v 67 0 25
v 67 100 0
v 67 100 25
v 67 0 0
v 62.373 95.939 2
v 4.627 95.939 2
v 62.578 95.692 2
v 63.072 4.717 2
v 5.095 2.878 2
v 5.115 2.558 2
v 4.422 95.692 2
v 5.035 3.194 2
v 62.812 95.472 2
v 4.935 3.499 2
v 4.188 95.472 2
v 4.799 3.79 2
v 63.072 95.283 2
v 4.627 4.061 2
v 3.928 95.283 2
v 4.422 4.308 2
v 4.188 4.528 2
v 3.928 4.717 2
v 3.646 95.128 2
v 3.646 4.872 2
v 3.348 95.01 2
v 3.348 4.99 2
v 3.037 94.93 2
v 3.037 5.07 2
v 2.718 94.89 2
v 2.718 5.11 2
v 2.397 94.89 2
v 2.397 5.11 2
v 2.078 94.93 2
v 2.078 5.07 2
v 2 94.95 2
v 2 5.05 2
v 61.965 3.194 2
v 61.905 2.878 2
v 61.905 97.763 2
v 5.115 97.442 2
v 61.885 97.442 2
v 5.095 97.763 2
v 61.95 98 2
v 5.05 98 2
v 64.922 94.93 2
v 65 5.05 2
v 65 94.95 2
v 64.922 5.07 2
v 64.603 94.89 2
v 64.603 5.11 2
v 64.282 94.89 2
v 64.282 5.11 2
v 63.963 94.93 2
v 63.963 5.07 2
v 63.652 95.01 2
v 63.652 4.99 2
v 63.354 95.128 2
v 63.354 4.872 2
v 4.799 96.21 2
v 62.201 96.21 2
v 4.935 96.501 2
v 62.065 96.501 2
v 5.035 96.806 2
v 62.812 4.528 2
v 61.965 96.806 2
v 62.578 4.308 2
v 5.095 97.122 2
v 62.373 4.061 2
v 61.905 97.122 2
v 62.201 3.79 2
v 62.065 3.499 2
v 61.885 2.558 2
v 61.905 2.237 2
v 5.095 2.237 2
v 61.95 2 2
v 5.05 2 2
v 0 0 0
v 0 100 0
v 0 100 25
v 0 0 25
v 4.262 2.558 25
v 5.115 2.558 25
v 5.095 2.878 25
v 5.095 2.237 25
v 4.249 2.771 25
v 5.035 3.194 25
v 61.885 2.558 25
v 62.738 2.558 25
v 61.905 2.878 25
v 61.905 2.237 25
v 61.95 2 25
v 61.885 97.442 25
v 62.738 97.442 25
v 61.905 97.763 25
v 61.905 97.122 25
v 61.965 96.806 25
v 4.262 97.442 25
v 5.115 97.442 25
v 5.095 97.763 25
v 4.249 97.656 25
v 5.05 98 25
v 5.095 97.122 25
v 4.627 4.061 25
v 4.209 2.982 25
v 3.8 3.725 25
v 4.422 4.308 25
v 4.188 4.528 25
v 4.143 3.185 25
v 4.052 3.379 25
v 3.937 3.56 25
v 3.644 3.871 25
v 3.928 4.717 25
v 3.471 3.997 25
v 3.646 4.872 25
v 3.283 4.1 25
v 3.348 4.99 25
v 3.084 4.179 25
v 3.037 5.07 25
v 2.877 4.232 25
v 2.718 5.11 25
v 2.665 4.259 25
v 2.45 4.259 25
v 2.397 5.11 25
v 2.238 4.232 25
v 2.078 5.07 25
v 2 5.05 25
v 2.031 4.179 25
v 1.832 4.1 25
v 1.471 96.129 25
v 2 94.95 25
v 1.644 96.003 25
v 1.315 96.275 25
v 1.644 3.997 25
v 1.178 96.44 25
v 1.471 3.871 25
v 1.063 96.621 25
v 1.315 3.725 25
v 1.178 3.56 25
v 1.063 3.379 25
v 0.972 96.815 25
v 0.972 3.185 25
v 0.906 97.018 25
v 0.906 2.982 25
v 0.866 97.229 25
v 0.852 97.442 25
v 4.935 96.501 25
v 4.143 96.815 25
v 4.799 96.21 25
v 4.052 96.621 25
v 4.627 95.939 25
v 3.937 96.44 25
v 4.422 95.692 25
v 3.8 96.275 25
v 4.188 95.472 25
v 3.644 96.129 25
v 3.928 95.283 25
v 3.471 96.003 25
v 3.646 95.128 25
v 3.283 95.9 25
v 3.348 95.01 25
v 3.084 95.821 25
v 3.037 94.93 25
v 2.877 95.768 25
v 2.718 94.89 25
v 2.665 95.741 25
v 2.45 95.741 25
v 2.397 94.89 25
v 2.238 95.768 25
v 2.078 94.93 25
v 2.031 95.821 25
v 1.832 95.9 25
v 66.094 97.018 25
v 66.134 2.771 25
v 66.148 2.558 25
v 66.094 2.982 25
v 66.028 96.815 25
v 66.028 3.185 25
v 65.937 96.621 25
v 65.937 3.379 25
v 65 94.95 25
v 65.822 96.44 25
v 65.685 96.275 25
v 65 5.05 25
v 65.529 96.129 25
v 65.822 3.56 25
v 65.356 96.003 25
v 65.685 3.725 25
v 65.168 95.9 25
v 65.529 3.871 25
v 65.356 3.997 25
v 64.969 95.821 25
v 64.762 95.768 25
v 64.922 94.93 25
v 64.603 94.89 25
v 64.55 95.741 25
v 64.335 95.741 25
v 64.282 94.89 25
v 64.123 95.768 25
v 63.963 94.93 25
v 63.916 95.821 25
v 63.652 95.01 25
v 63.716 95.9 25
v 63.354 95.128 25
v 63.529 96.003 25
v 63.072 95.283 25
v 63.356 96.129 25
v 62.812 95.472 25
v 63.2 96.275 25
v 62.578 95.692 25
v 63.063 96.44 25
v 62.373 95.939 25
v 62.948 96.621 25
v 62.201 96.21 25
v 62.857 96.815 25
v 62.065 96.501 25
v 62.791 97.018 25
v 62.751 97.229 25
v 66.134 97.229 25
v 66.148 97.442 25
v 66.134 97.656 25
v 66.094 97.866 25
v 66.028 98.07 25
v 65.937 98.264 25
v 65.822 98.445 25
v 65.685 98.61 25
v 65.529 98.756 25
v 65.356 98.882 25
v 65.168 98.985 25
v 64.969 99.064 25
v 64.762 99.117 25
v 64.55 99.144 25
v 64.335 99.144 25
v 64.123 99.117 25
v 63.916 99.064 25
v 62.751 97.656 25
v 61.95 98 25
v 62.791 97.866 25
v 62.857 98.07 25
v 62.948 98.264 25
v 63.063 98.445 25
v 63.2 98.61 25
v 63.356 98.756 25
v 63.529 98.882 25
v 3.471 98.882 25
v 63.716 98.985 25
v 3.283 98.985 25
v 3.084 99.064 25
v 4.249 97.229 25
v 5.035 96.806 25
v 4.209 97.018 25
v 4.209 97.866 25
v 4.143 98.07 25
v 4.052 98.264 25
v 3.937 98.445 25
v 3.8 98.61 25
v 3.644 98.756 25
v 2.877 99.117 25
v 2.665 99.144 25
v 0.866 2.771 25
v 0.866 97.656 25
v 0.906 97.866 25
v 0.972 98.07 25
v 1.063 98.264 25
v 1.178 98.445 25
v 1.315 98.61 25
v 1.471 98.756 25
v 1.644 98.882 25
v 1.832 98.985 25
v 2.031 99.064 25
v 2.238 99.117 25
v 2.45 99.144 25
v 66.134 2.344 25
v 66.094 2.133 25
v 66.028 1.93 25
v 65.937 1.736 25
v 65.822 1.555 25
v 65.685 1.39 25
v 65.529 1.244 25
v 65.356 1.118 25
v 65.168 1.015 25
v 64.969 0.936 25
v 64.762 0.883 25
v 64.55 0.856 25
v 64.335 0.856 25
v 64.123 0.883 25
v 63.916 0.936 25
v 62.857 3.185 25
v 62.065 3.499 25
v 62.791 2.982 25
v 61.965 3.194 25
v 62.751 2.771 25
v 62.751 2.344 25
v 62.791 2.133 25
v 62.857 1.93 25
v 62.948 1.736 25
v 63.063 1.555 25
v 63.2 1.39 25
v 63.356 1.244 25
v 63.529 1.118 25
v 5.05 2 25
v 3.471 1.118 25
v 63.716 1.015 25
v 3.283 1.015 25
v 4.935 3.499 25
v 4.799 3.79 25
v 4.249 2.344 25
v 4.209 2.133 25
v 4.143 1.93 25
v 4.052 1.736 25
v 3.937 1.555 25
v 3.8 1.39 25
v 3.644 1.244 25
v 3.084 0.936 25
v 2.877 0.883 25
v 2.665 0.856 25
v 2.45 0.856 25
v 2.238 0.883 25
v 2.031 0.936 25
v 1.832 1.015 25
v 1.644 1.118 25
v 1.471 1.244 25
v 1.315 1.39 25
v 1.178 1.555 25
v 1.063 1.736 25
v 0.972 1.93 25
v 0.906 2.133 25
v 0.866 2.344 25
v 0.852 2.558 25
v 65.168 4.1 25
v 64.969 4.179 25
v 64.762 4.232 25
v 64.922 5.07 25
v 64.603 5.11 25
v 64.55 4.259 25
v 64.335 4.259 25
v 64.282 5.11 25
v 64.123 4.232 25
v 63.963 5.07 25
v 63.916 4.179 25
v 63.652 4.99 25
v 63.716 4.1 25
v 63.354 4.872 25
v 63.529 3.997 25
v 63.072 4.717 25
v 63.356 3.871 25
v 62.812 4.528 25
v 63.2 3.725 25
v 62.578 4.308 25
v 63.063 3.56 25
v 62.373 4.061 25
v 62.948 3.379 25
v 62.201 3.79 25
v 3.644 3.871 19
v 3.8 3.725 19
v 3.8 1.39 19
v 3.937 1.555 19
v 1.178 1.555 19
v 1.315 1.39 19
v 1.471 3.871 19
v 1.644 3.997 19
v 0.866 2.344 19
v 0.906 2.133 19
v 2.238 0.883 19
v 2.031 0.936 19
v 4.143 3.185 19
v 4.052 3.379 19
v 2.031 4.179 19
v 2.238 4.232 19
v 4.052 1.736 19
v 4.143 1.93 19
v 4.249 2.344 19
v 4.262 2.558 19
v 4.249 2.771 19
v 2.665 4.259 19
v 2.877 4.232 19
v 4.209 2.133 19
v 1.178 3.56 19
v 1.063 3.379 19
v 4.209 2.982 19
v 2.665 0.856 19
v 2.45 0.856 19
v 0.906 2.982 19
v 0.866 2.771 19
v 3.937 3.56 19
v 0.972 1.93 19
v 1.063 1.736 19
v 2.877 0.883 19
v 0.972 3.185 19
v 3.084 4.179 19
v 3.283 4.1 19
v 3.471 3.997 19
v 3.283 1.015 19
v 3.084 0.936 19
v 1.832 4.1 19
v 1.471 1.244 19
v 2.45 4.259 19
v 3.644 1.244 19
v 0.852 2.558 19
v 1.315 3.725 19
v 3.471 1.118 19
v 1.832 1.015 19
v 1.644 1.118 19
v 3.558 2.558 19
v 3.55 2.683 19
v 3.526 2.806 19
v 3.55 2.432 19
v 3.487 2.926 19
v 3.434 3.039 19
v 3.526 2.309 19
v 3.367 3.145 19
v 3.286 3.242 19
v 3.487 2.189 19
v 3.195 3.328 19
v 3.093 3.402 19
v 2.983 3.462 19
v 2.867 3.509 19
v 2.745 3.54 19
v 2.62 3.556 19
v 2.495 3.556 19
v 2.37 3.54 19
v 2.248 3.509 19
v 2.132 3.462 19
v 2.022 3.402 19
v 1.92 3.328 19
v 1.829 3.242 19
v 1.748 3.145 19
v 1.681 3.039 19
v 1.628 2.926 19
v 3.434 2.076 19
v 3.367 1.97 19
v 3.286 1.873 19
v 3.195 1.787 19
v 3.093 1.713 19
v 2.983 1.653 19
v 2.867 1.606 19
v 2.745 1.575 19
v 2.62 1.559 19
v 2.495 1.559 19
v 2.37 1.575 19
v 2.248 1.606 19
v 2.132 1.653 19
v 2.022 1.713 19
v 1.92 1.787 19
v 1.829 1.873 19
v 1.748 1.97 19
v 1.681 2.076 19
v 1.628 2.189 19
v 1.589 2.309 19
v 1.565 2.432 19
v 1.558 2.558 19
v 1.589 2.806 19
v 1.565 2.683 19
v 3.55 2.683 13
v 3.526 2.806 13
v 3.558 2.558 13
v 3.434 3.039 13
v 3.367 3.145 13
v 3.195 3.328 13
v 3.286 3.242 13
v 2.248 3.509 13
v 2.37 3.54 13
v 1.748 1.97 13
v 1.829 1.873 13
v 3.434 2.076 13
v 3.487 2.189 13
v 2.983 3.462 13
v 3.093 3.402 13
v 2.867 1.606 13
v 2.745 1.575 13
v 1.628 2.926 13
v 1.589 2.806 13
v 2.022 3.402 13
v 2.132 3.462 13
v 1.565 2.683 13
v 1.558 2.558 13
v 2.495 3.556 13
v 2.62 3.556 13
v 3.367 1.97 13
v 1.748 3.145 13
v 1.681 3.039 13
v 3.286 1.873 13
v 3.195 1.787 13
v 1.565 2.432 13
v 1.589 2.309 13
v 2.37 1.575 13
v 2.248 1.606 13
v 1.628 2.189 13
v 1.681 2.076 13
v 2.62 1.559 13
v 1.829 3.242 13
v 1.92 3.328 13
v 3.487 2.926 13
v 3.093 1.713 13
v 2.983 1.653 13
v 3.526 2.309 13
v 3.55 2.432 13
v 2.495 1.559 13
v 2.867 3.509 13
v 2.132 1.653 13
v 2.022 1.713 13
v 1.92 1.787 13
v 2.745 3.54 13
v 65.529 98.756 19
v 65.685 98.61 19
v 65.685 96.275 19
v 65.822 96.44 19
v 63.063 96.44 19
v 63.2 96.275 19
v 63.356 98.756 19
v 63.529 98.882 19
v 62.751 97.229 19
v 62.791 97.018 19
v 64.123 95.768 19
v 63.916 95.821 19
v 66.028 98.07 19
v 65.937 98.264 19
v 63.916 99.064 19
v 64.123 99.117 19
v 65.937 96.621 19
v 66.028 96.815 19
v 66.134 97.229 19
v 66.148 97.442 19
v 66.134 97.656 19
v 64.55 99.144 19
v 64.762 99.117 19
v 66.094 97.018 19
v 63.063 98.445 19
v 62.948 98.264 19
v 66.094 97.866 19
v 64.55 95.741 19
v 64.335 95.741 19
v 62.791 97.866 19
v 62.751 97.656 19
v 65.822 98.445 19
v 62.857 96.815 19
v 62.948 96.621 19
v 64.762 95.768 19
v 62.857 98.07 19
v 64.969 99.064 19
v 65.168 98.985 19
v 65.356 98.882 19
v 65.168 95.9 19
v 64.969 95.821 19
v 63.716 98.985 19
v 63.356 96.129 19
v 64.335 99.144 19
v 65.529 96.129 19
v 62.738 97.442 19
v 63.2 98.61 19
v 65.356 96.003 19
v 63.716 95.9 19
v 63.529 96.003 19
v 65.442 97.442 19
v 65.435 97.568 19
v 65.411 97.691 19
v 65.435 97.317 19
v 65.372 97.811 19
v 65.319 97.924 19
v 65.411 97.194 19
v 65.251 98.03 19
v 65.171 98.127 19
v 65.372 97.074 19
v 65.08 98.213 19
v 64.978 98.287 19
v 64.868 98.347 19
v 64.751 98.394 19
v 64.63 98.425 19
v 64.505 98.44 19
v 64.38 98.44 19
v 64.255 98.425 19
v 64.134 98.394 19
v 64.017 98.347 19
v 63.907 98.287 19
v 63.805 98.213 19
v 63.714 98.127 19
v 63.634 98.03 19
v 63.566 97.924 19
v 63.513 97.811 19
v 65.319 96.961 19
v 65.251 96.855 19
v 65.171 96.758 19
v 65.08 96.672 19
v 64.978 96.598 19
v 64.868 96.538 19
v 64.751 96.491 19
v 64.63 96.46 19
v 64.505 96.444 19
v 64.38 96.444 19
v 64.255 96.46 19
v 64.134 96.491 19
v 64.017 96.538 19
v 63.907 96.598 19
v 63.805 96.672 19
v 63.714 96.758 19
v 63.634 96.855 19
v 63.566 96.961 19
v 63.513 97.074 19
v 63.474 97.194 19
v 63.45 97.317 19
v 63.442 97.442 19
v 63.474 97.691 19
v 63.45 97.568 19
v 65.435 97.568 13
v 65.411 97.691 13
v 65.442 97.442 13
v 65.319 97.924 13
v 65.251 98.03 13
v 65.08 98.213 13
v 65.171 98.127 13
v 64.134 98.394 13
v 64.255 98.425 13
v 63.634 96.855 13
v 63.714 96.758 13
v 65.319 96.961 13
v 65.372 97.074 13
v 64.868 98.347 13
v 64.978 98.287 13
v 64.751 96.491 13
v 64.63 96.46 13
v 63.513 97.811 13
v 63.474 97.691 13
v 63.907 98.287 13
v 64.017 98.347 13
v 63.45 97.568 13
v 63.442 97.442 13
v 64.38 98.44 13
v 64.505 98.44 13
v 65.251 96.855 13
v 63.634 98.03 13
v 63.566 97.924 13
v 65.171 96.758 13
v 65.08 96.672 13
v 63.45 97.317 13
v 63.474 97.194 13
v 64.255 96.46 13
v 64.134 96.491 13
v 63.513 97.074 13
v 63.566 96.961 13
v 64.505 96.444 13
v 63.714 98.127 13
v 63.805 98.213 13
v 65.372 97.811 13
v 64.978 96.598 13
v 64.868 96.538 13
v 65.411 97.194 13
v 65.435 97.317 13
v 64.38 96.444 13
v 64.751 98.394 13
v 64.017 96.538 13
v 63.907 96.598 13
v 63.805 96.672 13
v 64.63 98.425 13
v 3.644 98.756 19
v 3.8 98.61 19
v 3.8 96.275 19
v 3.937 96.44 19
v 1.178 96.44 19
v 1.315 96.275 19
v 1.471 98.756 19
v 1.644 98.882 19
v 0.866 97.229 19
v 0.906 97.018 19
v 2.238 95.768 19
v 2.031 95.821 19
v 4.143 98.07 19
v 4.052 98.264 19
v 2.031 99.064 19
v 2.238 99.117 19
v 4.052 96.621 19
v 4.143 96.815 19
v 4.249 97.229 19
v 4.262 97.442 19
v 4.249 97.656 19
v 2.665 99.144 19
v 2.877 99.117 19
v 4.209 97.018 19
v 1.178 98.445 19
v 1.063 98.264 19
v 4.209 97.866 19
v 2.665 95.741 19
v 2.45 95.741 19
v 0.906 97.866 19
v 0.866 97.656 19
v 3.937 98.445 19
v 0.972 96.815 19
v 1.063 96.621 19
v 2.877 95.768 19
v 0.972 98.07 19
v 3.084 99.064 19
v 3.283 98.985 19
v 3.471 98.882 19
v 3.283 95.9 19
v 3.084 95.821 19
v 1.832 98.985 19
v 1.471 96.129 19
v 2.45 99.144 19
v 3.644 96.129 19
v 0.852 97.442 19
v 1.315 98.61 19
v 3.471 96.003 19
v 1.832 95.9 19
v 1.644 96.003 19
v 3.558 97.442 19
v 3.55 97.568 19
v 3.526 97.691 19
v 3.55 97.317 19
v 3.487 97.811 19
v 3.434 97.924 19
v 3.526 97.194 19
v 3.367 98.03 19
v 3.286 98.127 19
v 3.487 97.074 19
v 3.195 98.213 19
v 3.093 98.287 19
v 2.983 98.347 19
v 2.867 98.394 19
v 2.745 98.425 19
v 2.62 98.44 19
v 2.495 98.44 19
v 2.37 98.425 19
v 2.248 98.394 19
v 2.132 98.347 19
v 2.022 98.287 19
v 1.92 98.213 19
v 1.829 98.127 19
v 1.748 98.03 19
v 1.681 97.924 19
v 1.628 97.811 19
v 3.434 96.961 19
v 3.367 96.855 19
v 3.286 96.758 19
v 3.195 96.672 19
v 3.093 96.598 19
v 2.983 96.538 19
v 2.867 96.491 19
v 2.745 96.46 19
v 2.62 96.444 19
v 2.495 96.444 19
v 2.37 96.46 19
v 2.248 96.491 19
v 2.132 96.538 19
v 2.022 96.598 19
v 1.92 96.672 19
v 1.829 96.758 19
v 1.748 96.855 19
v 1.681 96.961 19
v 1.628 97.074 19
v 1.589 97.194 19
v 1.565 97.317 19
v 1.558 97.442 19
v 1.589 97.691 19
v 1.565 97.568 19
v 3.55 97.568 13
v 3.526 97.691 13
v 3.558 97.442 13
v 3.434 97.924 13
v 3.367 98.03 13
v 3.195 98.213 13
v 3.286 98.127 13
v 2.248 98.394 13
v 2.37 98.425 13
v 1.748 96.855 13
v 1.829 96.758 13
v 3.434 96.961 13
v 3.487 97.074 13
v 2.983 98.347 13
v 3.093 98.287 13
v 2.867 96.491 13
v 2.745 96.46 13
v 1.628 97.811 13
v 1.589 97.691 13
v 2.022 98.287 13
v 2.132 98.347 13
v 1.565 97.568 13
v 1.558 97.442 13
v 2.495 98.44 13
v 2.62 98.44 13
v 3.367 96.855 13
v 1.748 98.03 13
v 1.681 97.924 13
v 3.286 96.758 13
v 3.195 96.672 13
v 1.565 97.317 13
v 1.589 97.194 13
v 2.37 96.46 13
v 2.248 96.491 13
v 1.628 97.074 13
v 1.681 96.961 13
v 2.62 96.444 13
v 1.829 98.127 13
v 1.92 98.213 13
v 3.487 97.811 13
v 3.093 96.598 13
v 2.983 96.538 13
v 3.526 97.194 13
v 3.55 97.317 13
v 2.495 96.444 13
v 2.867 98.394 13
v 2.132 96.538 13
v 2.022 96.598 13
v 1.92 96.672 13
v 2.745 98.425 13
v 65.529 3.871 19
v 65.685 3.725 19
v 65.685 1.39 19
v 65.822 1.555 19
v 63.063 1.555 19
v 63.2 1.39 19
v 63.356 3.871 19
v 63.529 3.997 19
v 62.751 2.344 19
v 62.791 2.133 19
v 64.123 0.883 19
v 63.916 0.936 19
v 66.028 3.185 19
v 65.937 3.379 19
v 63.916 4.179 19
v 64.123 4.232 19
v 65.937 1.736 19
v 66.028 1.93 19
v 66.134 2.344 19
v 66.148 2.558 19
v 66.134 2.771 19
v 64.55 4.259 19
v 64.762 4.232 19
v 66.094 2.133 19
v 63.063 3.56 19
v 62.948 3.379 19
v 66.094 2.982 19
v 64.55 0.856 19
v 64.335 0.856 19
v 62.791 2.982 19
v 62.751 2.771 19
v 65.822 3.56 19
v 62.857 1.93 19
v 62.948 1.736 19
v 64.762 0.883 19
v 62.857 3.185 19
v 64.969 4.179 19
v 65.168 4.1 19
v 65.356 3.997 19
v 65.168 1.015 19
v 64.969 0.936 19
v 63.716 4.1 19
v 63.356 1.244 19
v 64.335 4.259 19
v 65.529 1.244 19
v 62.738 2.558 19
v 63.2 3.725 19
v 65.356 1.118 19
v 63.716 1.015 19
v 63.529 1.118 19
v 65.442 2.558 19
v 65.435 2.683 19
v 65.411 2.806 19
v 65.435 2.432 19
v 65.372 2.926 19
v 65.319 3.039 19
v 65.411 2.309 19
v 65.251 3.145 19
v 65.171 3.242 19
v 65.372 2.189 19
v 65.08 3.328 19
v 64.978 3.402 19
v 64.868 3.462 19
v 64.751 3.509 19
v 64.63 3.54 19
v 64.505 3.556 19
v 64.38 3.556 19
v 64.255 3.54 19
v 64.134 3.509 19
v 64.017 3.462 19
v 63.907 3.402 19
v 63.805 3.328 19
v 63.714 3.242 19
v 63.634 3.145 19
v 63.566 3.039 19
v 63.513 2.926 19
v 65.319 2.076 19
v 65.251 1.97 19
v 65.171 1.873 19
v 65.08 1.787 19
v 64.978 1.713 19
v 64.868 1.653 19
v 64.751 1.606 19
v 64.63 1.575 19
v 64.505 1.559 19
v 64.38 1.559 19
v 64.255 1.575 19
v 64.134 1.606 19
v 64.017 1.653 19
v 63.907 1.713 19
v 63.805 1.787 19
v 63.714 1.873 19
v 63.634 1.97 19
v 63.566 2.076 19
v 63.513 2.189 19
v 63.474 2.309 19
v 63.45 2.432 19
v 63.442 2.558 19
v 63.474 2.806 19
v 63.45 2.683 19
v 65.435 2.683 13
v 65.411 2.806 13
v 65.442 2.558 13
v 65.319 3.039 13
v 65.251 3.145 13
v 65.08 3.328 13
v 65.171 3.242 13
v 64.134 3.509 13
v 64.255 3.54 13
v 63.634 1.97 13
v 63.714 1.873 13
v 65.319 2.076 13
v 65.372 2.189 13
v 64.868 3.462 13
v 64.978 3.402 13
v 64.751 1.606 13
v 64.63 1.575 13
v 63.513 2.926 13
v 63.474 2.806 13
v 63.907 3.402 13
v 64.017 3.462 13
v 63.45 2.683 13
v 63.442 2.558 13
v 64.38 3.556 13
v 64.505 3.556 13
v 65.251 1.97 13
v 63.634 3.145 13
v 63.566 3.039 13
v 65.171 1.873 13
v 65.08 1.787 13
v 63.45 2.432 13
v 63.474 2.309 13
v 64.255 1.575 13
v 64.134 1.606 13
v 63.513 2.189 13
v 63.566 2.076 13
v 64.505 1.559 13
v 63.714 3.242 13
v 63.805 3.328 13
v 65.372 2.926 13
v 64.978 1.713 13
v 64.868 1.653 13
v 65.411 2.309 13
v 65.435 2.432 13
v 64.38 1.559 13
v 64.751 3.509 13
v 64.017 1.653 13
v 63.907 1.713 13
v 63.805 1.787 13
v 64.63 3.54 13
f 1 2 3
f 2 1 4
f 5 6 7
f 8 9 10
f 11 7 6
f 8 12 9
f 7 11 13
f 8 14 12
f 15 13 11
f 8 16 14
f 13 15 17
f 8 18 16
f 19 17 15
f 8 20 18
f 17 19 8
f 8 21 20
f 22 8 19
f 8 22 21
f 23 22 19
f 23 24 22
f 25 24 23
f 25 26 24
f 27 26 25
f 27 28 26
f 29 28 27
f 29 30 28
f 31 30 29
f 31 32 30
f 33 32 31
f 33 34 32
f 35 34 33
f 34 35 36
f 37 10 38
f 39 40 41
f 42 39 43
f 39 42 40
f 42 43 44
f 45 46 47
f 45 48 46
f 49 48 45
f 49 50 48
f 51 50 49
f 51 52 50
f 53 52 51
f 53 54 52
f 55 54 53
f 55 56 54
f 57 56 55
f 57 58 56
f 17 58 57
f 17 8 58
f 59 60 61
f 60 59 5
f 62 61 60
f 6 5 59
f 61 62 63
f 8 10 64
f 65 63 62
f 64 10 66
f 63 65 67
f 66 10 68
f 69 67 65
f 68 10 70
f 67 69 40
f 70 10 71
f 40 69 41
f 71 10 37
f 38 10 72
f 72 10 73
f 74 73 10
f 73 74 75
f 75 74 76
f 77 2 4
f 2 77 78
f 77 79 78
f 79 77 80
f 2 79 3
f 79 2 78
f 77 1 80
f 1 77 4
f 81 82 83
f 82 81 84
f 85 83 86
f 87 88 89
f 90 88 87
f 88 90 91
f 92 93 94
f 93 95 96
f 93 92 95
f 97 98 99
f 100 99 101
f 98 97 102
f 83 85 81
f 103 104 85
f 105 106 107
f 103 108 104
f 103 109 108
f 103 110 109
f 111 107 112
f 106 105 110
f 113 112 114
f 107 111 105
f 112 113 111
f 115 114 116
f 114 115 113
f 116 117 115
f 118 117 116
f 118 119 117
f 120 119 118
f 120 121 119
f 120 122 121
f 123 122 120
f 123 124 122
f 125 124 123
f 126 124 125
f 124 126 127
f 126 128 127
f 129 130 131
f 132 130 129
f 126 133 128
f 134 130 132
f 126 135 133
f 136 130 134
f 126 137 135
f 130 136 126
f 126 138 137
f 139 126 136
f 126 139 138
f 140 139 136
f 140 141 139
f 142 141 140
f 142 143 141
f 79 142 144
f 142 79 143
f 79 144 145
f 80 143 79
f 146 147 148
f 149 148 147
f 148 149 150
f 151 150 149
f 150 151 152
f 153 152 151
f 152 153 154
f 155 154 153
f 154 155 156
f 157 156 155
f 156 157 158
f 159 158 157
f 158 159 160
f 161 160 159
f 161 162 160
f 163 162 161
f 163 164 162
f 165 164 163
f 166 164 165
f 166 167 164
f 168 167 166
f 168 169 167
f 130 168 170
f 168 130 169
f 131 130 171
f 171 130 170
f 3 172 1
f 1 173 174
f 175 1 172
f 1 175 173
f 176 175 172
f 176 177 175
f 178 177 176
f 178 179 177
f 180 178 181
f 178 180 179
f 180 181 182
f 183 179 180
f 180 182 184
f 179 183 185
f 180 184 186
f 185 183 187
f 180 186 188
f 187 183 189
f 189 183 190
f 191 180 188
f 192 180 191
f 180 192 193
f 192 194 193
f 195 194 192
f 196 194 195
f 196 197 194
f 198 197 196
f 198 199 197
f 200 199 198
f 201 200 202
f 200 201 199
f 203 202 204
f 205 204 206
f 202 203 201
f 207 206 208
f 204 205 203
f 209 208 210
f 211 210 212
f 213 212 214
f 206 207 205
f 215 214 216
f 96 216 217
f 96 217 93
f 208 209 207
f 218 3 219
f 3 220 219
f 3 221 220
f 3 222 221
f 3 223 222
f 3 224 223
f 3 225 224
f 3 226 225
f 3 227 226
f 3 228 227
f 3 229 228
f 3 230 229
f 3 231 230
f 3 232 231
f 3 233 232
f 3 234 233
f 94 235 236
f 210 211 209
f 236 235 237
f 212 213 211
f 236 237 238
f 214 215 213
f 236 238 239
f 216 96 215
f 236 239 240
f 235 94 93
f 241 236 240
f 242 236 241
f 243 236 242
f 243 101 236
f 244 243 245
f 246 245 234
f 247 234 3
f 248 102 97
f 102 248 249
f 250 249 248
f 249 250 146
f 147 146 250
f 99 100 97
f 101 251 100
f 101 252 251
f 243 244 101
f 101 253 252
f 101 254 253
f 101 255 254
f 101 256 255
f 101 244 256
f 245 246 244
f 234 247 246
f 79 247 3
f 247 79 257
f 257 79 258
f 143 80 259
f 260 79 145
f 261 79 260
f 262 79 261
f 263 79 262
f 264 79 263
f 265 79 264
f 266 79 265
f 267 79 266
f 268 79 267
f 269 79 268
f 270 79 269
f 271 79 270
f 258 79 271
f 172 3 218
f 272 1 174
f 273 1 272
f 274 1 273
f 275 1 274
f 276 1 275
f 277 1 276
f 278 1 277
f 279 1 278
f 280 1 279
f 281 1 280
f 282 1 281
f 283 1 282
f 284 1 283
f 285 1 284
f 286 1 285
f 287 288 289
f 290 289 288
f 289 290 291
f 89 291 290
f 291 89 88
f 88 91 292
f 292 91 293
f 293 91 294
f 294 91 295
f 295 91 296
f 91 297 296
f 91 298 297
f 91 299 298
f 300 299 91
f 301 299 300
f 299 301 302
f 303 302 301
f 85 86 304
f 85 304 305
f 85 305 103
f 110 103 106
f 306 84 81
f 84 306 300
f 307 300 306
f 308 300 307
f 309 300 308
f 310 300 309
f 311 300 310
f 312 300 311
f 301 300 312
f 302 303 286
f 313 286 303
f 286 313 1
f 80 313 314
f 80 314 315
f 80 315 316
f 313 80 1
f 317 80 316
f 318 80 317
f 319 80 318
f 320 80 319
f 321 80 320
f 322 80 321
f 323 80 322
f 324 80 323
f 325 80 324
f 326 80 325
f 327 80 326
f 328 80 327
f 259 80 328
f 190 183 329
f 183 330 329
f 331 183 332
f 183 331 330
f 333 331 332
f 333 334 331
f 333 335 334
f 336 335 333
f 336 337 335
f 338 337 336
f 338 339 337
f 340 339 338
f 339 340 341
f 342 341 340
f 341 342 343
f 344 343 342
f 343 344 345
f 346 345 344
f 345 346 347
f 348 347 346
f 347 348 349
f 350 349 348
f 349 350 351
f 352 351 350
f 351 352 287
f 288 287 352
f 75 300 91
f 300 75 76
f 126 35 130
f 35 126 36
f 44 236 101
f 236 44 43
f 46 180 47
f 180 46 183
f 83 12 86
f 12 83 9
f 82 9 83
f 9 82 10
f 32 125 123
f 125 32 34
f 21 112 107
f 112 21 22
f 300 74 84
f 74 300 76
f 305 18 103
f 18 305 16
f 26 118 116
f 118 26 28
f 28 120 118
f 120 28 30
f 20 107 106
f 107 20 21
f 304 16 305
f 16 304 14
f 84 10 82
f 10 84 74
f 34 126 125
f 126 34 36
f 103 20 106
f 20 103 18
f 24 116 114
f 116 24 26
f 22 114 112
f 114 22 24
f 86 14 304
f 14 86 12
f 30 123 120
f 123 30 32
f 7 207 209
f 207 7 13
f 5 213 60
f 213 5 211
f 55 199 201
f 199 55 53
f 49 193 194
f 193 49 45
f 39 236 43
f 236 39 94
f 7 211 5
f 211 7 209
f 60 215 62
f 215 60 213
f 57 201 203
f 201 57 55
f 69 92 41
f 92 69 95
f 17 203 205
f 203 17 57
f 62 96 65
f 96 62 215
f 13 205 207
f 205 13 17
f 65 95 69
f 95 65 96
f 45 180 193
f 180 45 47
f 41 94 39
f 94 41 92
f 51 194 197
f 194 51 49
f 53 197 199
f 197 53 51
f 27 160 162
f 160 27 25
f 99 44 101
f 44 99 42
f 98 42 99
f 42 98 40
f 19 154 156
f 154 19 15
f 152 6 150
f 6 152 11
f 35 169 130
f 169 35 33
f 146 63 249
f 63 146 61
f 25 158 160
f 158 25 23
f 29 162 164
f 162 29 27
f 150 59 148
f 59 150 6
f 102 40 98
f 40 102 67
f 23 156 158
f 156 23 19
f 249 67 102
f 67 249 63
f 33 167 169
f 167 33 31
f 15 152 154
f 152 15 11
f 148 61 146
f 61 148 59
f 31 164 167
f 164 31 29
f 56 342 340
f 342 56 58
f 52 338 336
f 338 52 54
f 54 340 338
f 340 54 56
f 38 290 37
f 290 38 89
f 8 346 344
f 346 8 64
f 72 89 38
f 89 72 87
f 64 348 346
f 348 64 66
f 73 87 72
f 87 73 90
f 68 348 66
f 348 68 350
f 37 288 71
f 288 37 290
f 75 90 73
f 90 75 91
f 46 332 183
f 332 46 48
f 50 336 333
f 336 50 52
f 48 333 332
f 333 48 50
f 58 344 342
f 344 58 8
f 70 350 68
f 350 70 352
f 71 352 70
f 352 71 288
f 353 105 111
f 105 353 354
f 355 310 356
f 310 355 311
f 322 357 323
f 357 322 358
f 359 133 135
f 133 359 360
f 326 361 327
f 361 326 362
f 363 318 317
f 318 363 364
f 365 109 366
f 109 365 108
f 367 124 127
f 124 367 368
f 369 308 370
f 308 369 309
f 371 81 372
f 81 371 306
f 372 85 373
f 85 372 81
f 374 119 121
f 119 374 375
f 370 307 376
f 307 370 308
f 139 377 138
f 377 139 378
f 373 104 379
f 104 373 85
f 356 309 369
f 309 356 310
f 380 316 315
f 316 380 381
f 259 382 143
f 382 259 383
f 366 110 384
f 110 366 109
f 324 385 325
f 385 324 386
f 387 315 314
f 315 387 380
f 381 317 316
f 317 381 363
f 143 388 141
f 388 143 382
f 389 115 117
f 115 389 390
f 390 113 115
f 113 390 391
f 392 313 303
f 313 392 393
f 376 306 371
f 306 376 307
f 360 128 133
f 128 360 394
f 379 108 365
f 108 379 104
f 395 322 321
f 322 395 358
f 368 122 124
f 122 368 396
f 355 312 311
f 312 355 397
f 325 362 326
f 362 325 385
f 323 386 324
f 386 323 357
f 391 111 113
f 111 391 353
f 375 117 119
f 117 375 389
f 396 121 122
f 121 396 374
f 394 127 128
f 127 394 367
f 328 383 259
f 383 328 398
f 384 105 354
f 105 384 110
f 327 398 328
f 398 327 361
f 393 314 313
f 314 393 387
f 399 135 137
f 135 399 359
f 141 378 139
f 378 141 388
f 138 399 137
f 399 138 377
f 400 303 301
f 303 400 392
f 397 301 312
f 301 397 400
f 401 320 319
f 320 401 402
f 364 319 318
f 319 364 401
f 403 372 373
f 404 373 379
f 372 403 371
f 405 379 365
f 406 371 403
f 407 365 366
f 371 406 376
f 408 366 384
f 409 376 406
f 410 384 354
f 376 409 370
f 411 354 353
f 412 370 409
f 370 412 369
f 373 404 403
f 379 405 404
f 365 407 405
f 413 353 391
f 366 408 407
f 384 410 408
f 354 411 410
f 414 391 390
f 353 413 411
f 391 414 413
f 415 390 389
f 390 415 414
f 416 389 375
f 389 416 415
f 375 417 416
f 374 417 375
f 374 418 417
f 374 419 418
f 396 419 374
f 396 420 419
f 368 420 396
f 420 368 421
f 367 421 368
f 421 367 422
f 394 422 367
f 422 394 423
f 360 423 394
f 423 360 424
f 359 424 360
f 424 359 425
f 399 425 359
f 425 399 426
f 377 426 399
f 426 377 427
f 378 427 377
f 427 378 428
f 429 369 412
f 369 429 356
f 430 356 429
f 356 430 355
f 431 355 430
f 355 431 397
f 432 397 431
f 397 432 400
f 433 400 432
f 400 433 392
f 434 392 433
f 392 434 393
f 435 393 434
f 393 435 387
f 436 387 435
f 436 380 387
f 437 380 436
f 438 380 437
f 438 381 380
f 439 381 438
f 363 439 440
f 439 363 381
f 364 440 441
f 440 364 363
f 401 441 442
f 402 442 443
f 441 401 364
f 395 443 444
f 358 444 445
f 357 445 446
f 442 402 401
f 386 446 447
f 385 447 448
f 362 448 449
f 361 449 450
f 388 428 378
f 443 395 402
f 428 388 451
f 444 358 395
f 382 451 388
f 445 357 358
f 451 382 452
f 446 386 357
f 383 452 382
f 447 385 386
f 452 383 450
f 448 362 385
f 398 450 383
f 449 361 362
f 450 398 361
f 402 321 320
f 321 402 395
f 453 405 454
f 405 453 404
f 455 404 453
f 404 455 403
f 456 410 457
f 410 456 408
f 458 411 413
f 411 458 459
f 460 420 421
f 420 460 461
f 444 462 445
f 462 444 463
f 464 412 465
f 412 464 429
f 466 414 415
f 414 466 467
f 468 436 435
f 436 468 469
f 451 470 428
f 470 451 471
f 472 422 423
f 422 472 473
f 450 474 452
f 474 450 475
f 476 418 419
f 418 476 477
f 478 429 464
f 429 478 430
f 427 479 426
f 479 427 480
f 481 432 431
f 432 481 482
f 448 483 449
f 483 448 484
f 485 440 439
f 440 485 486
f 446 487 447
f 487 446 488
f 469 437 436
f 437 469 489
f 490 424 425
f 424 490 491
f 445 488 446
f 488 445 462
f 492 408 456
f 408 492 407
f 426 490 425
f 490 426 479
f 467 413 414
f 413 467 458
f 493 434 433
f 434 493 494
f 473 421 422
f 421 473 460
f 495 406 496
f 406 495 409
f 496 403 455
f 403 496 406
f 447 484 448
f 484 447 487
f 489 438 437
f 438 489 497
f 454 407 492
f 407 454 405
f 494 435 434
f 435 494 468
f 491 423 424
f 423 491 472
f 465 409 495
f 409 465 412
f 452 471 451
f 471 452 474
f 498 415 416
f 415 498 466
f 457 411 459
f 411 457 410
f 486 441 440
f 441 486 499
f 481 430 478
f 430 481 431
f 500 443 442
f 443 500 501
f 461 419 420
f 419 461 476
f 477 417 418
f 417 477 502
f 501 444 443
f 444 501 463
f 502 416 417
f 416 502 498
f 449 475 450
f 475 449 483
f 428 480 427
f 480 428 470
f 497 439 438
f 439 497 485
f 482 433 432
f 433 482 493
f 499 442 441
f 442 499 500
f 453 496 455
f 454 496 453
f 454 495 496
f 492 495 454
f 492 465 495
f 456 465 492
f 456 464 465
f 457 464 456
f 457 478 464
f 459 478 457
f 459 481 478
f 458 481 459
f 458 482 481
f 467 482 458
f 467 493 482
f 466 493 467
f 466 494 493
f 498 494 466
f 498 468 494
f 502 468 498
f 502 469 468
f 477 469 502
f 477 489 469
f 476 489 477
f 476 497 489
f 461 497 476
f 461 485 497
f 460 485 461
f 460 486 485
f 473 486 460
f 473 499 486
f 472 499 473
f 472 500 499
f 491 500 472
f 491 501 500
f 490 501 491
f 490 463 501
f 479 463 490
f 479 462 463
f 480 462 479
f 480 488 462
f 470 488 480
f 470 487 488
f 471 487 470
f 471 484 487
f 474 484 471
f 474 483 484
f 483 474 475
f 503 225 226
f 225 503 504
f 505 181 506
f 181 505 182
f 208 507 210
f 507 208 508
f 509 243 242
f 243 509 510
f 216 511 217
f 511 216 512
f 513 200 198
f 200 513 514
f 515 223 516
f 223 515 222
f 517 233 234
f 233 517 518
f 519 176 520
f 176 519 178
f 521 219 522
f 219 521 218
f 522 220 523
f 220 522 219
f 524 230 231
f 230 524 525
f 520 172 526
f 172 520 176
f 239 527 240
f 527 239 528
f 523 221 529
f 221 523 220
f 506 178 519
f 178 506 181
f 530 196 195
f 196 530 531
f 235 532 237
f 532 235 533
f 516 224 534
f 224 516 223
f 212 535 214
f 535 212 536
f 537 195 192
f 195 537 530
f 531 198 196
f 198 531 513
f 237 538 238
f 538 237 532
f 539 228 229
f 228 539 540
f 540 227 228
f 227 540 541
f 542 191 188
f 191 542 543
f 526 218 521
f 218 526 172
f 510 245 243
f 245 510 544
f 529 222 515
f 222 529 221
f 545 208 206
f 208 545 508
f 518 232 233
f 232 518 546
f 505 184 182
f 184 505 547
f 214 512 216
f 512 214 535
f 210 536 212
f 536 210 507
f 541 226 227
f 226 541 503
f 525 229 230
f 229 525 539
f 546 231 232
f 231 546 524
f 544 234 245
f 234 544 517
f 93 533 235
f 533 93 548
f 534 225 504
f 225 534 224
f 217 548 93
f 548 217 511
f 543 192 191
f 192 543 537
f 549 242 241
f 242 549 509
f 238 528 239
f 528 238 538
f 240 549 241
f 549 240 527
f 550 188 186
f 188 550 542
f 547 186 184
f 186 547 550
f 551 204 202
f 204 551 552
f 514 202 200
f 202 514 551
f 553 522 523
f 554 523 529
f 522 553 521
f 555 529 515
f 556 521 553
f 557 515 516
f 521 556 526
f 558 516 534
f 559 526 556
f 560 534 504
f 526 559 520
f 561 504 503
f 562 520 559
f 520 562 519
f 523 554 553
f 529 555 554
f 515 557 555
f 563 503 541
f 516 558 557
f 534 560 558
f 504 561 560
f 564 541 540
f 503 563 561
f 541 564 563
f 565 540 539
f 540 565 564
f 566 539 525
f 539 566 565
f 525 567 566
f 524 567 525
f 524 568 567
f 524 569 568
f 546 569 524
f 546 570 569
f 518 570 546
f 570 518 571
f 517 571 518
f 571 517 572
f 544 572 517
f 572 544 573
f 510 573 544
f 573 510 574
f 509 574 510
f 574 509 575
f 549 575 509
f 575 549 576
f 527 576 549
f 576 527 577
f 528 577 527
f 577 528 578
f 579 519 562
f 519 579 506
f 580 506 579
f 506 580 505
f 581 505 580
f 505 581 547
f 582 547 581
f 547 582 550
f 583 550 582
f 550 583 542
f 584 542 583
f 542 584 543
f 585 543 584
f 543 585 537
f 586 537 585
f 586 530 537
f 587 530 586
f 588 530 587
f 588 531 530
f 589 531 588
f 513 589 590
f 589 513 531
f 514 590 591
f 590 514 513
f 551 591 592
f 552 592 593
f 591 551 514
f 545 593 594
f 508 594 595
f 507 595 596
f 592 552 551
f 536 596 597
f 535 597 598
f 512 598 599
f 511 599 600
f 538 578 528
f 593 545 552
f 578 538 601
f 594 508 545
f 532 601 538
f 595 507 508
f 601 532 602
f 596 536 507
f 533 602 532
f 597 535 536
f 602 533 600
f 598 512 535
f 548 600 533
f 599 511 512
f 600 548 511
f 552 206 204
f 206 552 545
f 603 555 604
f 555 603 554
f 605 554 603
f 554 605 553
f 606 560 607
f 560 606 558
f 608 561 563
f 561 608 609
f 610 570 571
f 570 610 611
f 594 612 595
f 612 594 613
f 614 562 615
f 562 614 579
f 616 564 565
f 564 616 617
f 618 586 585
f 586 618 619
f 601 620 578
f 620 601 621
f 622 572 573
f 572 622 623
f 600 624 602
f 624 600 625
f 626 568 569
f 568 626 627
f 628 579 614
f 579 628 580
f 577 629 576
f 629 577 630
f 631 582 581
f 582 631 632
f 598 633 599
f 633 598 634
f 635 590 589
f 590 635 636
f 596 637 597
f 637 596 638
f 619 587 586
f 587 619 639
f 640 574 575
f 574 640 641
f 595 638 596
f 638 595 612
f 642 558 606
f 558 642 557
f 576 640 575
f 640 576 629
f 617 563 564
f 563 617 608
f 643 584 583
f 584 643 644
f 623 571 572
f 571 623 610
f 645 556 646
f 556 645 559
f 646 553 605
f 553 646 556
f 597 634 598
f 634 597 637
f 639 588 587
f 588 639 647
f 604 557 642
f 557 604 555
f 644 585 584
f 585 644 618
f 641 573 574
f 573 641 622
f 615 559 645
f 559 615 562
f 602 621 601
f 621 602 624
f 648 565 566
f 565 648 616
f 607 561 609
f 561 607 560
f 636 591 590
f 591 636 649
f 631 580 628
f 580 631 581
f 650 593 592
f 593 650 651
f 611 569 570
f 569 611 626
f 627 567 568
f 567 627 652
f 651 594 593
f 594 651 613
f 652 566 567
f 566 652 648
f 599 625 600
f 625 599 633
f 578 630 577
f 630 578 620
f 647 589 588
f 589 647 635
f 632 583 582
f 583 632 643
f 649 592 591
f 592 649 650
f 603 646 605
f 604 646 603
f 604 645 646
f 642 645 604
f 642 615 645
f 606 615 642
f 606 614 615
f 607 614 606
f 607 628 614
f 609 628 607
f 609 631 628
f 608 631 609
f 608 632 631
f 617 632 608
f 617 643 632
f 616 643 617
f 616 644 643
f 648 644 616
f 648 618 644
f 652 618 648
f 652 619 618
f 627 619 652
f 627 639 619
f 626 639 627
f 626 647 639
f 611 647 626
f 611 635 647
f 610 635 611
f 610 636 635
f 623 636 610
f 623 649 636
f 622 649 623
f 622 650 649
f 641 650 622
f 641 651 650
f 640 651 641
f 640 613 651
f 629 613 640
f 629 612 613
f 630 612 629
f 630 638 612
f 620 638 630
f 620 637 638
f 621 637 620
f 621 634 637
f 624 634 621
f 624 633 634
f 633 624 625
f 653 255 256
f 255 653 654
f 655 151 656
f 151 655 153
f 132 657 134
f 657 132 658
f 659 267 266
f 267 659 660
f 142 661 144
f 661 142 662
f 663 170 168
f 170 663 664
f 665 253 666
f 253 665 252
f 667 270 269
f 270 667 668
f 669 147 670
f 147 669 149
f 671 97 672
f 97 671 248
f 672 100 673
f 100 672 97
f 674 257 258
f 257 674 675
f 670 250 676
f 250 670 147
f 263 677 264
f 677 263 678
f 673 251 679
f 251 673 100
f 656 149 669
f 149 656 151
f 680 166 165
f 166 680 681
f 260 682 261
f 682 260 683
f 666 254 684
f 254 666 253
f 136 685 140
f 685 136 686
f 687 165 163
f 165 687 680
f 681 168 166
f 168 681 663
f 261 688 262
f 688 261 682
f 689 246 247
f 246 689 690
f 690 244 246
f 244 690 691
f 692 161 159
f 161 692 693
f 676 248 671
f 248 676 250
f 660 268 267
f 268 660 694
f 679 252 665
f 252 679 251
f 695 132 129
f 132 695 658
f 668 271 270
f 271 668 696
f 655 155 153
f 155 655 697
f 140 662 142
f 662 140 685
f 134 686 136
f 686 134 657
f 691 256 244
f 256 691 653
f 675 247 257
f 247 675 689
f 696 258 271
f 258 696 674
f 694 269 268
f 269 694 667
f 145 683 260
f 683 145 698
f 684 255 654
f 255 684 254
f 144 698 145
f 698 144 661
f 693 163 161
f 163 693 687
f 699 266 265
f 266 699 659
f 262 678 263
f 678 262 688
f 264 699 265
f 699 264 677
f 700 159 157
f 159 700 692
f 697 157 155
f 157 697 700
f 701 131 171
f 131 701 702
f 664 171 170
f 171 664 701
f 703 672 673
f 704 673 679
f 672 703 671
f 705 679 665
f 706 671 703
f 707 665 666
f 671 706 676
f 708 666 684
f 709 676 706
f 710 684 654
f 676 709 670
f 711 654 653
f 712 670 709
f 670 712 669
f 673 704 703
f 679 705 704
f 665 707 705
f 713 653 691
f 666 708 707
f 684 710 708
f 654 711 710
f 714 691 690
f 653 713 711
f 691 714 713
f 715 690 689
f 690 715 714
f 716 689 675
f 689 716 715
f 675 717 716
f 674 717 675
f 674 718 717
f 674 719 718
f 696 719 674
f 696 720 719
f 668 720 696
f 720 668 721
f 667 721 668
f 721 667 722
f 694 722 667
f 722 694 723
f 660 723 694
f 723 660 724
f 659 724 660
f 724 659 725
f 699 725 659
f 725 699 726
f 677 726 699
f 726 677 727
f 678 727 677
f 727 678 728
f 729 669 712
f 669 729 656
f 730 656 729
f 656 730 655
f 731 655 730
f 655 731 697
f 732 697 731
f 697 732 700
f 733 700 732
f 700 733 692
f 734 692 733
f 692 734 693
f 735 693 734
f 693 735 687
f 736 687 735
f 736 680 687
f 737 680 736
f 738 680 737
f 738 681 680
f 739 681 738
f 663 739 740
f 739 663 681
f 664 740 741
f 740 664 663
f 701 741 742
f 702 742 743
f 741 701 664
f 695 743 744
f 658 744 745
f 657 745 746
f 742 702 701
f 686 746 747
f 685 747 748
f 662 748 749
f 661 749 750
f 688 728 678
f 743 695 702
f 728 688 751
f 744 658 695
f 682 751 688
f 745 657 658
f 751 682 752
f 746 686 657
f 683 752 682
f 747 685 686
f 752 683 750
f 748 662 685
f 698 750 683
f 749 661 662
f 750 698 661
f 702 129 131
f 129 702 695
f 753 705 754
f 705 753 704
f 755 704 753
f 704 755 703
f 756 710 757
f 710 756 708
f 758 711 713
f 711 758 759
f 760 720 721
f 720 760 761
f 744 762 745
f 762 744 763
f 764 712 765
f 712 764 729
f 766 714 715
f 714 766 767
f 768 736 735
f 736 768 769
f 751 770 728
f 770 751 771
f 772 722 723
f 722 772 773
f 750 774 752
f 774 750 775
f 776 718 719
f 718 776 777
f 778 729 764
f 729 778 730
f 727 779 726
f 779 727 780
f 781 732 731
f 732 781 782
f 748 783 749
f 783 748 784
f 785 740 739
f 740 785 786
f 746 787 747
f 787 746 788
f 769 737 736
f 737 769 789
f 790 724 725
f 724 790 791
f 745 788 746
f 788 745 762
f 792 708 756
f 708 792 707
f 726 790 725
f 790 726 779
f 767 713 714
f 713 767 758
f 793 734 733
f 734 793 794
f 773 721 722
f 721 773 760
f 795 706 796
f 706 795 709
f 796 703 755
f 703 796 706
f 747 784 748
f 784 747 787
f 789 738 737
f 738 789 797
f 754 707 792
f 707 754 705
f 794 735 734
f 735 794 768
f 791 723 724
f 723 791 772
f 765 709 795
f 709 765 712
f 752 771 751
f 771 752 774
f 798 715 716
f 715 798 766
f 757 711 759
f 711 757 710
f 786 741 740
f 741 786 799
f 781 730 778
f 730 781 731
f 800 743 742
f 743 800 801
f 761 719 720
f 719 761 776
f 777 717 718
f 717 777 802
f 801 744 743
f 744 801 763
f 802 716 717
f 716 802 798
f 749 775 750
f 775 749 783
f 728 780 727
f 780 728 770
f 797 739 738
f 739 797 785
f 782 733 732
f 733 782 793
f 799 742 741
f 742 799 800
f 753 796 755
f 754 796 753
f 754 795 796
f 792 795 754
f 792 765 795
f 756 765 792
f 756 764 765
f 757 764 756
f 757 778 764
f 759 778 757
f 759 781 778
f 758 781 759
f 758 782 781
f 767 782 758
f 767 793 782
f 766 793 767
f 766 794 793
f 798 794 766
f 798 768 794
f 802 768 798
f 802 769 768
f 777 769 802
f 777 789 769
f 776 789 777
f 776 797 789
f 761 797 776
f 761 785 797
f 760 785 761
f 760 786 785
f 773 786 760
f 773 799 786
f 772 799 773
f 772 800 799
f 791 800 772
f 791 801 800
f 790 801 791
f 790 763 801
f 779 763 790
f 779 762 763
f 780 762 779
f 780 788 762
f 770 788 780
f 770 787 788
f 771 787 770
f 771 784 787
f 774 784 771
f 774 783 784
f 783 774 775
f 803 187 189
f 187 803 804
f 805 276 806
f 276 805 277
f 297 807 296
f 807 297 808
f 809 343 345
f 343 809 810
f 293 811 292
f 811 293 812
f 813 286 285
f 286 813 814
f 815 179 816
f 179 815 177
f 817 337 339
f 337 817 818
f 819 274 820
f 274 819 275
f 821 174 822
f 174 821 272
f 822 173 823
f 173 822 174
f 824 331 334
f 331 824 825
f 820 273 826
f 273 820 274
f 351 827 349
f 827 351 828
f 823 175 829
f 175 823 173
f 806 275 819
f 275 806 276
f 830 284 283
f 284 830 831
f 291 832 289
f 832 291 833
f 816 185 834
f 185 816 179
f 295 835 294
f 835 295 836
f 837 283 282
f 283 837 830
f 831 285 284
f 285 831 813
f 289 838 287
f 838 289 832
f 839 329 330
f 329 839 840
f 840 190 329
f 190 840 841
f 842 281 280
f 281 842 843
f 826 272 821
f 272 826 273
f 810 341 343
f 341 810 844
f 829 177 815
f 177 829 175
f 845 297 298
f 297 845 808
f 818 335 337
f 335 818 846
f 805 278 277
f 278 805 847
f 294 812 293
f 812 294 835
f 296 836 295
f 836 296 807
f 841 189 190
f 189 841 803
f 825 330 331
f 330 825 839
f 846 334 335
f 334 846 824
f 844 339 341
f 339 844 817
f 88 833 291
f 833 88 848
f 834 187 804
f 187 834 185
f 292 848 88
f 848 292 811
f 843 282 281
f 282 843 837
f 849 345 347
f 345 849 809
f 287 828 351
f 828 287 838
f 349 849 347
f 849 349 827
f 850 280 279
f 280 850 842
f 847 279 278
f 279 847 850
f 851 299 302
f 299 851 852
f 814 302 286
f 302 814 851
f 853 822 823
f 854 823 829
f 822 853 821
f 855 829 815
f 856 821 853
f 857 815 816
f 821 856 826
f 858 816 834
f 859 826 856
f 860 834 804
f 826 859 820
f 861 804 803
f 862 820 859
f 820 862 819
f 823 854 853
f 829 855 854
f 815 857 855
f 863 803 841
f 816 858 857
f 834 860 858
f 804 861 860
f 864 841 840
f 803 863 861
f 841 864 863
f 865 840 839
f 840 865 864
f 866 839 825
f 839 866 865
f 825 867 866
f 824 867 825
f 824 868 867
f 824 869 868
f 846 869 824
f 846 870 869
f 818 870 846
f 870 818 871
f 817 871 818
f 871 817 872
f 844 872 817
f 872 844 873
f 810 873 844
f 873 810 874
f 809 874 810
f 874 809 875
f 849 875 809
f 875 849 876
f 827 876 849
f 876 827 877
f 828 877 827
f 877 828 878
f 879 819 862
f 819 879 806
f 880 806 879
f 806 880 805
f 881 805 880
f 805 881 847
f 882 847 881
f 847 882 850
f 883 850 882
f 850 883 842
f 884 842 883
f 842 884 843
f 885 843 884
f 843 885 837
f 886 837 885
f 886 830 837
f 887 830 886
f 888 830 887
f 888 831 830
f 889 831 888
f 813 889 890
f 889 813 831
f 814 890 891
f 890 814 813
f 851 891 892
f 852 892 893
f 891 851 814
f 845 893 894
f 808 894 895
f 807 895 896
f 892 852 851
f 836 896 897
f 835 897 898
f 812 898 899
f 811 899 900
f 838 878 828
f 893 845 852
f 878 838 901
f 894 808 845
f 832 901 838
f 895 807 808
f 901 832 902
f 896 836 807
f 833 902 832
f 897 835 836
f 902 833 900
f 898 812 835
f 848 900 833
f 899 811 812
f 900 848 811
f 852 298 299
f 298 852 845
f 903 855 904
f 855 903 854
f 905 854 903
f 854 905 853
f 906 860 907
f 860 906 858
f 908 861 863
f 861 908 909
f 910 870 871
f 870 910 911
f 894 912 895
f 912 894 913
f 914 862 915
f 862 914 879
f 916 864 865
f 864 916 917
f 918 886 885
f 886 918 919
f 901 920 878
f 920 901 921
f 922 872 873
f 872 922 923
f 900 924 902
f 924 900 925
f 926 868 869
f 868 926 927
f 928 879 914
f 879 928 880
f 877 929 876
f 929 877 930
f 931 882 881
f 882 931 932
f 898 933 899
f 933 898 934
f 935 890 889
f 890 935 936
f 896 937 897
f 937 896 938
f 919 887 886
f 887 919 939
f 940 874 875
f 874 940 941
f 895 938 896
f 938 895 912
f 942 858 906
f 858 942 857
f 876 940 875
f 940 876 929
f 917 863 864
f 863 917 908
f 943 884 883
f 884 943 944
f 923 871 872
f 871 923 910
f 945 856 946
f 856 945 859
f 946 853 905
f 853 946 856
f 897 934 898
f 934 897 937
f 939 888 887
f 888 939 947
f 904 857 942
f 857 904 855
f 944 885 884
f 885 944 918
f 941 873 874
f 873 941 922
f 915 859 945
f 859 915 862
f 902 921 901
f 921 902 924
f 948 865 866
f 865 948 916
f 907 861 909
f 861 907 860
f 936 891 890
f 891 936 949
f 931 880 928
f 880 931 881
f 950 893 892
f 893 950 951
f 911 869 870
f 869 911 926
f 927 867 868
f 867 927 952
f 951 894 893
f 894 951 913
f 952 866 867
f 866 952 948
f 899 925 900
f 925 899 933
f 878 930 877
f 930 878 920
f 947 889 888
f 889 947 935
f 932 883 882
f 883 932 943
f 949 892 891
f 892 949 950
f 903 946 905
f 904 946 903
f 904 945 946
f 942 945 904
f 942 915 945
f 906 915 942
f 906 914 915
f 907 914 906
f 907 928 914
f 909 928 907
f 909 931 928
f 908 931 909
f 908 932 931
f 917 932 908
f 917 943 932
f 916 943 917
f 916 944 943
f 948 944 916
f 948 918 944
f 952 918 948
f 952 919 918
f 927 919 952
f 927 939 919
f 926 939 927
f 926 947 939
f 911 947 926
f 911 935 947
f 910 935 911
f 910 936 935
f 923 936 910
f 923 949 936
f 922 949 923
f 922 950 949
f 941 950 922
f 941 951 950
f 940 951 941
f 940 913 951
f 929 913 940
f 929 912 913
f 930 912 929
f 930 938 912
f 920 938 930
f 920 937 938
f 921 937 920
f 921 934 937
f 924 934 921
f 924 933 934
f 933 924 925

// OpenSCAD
$fn=50;

width = 67;
length = 100;
height = 25;
thickness = 2;
phi = 1.6180339887;
//length = round(phi * width);
//height = round(width / phi);

// M2x6x3.5 Embedded Nut
finsertdiameter = 3.41;
finsertdepth = 6;

// M2x12 Hex Socket Cap Bolt
fheaddiameter = 4;
fheaddepth = 2;
fshankdiameter = 2;
fshankdepth = 12;

if (fshankdepth < finsertdepth) {
    fshankdepth = finsertdepth;
}

fsize = finsertdiameter * 1.5;


difference() {

    union() {
        // base
        cube([width, length, thickness]);

        // sides
        cube([width, thickness, height]);
        cube([thickness, length, height]);
        translate([0, length - thickness, 0]) {
            cube([width, thickness, height]);
        }
        translate([width - thickness, 0, 0]) {
            cube([thickness, length, height]);
        }

        // posts
        translate([fsize/2, fsize/2, 0]) {
            cylinder(r=fsize/2, h=height);
        }
        translate([width-fsize/2, length-fsize/2, 0]) {
            cylinder(r=fsize/2, h=height);
        }
        translate([fsize/2, length-fsize/2, 0]) {
            cylinder(r=fsize/2, h=height);
        }
        translate([width-fsize/2, fsize/2, 0]) {
            cylinder(r=fsize/2, h=height);
        }
    }


    translate([fsize/2, fsize/2, height-fshankdepth]) {
        inserthole();
    }
    translate([width-fsize/2, length-fsize/2, height-fshankdepth]) {
        inserthole();
    }
    translate([fsize/2, length-fsize/2, height-fshankdepth]) {
        inserthole();
    }
    translate([width-fsize/2, fsize/2, height-fshankdepth]) {
        inserthole();
    }

}

module inserthole() {
    union() {
        translate([0,0,fshankdepth-finsertdepth]) {
            cylinder(h=finsertdepth,r=finsertdiameter/2);
        }
        cylinder(h=fshankdepth,r=fshankdiameter/2);
    }    
}
